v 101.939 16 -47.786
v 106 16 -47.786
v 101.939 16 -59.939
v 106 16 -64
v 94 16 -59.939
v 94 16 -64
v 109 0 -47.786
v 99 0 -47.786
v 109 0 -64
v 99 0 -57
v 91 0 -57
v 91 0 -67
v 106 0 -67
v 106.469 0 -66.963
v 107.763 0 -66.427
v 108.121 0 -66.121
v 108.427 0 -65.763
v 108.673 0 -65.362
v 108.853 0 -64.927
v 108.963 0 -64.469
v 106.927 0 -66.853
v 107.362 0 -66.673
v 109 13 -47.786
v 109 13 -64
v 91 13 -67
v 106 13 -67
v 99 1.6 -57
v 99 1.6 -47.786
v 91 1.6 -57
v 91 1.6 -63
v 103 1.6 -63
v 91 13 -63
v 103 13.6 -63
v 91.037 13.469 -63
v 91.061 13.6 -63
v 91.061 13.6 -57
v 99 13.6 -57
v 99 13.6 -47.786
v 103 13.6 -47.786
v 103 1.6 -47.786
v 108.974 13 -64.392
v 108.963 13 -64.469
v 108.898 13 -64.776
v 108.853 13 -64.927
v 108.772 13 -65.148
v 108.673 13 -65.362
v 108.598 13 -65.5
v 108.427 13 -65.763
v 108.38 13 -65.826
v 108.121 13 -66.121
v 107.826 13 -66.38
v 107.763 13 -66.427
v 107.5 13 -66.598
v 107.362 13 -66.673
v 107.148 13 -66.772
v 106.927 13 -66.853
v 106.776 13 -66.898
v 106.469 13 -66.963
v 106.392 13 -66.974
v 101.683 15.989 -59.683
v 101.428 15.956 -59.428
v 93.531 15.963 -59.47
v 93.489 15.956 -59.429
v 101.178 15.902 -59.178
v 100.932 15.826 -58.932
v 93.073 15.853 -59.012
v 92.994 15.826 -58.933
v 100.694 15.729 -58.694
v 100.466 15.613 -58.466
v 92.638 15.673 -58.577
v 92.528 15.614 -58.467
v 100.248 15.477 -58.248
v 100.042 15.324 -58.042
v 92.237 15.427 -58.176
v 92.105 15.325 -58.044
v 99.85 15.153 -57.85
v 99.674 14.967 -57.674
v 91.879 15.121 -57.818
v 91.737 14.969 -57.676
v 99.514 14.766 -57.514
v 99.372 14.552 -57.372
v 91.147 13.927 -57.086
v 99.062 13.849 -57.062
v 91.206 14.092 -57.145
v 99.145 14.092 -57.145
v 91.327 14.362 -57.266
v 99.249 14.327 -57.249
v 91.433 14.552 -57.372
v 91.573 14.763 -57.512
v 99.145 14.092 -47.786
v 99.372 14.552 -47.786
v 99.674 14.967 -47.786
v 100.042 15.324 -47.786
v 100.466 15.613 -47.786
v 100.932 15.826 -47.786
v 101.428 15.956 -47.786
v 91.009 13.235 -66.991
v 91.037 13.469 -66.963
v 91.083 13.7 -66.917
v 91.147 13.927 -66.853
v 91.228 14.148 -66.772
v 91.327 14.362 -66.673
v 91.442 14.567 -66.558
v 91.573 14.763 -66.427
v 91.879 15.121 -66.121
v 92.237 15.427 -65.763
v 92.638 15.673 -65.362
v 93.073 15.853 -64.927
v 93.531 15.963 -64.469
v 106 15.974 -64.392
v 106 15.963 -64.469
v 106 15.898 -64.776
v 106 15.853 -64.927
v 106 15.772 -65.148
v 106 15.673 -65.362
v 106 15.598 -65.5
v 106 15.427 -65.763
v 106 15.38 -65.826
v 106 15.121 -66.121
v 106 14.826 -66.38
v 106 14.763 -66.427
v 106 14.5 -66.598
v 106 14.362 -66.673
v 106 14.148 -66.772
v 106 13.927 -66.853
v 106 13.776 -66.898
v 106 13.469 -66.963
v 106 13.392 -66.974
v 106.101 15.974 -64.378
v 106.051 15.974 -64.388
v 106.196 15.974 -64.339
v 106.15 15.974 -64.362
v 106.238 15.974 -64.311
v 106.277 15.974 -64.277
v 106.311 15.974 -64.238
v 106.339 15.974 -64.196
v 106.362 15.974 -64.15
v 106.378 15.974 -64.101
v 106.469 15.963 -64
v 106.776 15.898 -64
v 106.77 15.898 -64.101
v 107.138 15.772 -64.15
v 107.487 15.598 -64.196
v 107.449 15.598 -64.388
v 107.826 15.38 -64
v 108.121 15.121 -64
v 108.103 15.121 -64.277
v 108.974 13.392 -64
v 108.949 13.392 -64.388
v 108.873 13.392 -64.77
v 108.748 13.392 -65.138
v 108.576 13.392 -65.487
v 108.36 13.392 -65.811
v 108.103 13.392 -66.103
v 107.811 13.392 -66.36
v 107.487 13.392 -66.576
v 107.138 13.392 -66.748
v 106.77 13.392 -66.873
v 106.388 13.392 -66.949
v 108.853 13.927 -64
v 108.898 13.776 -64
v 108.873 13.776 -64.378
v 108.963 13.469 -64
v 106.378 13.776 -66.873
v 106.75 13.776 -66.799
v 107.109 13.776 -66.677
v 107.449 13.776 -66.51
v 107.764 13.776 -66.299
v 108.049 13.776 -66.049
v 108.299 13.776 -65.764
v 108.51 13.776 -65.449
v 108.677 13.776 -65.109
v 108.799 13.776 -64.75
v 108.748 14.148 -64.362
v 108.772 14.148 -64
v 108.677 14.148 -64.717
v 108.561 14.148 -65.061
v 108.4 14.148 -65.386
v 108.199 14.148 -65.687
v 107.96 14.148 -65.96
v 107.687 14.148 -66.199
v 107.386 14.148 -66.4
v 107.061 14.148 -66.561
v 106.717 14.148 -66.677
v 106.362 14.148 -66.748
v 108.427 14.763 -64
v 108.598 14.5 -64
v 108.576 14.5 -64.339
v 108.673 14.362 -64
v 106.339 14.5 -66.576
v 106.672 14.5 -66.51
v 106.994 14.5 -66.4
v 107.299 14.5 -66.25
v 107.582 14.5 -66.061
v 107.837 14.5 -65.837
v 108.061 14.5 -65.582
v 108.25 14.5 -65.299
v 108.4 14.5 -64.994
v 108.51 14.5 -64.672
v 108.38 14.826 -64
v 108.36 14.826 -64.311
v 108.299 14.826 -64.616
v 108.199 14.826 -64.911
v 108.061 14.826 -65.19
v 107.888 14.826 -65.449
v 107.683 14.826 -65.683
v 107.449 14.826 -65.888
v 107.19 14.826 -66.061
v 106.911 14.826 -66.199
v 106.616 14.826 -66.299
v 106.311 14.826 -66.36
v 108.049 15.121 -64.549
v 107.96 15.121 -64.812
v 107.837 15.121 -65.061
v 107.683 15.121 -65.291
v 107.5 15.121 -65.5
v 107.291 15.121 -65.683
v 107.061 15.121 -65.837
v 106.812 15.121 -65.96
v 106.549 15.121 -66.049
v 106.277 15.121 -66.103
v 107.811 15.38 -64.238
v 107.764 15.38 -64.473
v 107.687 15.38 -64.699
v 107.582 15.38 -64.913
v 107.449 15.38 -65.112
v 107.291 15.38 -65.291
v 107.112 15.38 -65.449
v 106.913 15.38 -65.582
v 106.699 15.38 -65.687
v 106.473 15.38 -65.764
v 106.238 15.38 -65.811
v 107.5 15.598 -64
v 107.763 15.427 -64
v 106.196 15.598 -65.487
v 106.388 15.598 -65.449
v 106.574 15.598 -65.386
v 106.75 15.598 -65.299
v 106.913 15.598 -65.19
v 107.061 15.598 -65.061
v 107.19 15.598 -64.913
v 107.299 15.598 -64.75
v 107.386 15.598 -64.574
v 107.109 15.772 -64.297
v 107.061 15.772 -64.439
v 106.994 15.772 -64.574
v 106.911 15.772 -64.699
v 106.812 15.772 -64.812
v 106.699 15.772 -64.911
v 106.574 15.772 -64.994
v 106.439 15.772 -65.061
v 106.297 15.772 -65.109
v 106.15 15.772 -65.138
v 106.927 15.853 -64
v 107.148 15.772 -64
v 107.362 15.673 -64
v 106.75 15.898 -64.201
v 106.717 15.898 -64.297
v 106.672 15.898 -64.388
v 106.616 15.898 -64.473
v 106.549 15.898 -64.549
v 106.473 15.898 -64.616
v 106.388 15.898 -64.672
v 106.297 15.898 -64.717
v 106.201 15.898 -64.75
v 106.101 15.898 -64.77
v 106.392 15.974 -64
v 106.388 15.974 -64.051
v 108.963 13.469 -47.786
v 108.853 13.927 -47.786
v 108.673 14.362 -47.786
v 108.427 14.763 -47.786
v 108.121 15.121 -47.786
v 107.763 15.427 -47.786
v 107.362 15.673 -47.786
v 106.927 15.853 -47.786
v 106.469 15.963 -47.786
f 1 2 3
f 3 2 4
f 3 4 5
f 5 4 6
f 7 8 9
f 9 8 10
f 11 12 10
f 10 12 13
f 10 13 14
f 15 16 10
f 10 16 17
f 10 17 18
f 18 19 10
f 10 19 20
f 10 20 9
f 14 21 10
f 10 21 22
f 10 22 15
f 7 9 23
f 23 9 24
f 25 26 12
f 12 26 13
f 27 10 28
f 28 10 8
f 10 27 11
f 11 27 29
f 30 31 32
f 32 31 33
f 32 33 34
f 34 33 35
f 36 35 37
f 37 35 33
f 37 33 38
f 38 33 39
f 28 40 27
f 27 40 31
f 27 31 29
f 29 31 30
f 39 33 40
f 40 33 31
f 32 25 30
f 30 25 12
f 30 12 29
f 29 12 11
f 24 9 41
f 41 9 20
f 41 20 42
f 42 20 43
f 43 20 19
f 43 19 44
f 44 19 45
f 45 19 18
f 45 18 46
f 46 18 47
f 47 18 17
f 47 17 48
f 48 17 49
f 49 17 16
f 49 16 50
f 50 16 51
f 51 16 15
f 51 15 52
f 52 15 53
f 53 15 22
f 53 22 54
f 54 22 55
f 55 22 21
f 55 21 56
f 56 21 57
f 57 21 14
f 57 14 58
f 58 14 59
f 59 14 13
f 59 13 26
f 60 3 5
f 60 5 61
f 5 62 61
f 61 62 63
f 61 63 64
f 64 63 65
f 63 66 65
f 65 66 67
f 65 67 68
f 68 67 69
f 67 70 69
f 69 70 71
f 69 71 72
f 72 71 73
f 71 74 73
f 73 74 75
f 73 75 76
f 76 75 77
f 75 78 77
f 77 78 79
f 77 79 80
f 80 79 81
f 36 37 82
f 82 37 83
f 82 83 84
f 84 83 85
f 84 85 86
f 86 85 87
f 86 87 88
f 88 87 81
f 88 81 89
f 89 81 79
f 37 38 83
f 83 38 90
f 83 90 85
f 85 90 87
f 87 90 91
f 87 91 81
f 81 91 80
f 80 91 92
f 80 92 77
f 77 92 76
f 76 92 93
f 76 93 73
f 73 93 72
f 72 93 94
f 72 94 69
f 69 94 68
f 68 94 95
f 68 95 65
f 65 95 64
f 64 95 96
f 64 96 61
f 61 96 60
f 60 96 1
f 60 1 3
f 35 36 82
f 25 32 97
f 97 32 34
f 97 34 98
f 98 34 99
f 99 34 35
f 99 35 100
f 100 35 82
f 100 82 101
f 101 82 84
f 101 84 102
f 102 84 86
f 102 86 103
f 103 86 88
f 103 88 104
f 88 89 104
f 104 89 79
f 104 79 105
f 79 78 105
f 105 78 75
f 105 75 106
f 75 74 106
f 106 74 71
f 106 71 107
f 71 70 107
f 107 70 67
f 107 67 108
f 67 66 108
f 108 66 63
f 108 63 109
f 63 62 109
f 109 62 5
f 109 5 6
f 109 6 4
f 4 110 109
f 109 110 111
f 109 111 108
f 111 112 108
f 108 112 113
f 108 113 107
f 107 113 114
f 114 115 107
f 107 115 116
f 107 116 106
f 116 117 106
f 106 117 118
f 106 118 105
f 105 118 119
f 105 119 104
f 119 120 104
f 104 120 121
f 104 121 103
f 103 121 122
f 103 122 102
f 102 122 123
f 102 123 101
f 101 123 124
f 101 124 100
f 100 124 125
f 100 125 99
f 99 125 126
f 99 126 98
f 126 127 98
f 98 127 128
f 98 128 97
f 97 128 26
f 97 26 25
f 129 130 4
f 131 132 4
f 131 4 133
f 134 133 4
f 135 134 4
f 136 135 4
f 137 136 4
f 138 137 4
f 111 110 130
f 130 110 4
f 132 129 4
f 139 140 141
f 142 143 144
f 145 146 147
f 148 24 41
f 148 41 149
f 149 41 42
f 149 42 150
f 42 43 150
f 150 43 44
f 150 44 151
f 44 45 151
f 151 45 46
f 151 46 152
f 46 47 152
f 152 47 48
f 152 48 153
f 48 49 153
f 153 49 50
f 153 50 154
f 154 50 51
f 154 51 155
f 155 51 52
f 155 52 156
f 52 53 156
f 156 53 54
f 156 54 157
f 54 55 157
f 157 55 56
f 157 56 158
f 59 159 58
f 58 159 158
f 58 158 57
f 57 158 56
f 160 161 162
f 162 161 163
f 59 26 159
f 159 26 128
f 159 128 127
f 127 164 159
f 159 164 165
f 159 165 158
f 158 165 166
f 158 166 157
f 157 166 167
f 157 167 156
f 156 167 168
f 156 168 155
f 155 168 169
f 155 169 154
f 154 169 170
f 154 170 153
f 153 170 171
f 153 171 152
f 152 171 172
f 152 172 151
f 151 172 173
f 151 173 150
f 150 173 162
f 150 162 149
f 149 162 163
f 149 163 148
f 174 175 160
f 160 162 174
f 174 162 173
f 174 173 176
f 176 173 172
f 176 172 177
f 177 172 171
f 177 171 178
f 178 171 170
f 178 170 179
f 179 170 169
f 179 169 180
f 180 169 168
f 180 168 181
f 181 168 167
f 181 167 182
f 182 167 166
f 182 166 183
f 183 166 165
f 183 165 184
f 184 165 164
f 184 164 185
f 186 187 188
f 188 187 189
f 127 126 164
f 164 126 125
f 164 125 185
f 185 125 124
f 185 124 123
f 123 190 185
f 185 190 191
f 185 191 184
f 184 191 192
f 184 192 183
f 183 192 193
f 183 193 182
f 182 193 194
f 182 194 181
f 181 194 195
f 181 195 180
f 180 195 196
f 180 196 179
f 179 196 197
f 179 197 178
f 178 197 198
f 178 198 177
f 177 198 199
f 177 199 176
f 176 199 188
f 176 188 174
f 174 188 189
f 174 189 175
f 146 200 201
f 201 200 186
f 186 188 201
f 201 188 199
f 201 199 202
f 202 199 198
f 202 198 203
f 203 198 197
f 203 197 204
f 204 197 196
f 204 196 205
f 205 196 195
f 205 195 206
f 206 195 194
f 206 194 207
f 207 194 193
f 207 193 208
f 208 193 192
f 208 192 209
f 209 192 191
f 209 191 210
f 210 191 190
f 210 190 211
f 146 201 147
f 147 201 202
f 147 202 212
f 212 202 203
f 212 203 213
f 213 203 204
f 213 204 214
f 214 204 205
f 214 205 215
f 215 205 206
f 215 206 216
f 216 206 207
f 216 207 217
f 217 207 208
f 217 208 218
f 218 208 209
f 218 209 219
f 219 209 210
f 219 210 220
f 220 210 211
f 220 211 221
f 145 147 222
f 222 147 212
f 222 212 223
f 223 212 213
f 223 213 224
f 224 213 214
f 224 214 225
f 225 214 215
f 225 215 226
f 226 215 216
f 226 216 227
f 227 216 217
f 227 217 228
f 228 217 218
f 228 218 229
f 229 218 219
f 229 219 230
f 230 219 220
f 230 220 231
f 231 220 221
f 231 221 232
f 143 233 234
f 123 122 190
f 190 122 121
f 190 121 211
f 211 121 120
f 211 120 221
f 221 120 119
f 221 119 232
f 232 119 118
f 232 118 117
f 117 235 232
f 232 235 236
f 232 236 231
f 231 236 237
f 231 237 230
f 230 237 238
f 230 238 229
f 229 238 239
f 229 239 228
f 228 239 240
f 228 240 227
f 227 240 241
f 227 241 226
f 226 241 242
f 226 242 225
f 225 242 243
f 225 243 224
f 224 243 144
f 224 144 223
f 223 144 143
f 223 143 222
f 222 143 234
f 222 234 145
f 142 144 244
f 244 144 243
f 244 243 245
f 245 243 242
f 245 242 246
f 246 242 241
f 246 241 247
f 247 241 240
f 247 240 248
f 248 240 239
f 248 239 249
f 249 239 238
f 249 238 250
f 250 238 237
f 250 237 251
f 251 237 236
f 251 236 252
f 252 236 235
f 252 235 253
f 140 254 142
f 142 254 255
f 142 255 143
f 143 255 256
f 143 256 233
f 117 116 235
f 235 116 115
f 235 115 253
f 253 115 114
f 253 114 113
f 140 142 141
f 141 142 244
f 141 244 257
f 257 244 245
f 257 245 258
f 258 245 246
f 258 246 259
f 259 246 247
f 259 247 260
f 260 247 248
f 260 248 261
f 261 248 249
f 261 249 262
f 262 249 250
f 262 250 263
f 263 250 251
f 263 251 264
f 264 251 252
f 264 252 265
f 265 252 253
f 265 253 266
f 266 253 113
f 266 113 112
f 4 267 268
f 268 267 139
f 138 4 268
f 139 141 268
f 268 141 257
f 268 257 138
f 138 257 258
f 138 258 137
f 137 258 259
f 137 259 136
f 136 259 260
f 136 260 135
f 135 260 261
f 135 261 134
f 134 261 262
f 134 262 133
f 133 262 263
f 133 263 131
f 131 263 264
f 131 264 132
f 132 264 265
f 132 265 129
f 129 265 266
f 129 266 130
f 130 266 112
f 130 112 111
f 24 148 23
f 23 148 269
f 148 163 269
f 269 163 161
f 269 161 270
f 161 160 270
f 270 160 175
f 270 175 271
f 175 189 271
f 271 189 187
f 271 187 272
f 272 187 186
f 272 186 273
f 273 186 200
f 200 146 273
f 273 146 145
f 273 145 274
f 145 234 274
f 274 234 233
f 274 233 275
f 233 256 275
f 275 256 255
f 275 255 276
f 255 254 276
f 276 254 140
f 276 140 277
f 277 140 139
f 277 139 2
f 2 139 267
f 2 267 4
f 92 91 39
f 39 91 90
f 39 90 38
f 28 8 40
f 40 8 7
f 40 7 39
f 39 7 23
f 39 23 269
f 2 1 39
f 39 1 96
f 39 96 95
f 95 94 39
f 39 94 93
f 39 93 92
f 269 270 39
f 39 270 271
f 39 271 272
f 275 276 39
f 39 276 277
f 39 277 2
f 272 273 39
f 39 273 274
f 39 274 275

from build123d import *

# Parameters (mm, degrees)
SKETCH_221_W        = 218
SKETCH_221_H        = 134
SKETCH_221_W_2      = 198
SKETCH_221_H_2      = 114
EXTRUDE_2_DEPTH     = 16
SKETCH_2_W          = 126
SKETCH_2_H          = 12
CUT_EXTRUDE_1_DEPTH = 212
SKETCH_3_W          = 182
SKETCH_3_H          = 14.4
CUT_EXTRUDE_2_DEPTH = 134
SKETCH_4_R          = 1
CUT_EXTRUDE_3_DEPTH = 1.6
FILLET_1_R          = 3
FILLET_2_R          = 3
FILLET_3_R          = 3
SKETCH_6_W          = 206.897999361
SKETCH_6_H          = 19.177389722
CUT_EXTRUDE_5_DEPTH = 200
SKETCH_7_W          = 123.024935324
SKETCH_7_H          = 17.566945153
CUT_EXTRUDE_6_DEPTH = 300


with BuildPart() as part:
    # Sketch 221 → Бобышка-Вытянуть2 (new body)
    with BuildSketch(Plane(origin=(0, 0, 0), x_dir=(1, 0, 0), z_dir=(0, 1, 0))):
        Rectangle(SKETCH_221_W, SKETCH_221_H)
        Rectangle(SKETCH_221_W_2, SKETCH_221_H_2, mode=Mode.SUBTRACT)
    extrude(amount=EXTRUDE_2_DEPTH)

    # Эскиз2 → Вырез-Вытянуть1 (cut)
    with BuildSketch(Plane.ZY.offset(109)):
        with Locations((0, 7.6)):
            Rectangle(SKETCH_2_W, SKETCH_2_H)
    extrude(amount=-CUT_EXTRUDE_1_DEPTH, mode=Mode.SUBTRACT)

    # Эскиз3 → Вырез-Вытянуть2 (cut)
    with BuildSketch(Plane.XY.offset(67)):
        with Locations((0, 8.8)):
            Rectangle(SKETCH_3_W, SKETCH_3_H)
    extrude(amount=-CUT_EXTRUDE_2_DEPTH, mode=Mode.SUBTRACT)

    # Эскиз4 → Вырез-Вытянуть3 (cut)
    with BuildSketch(Plane(origin=(0, 1.6, 0), x_dir=(1, 0, 0), z_dir=(0, 1, 0))):
        with Locations(Location((-74.698916604, 62, 0), (0, 0, 270))):
            Circle(SKETCH_4_R)
        with Locations(Location((-74.698916604, -62, 0), (0, 0, 270))):
            Circle(SKETCH_4_R)
        with Locations(Location((74.698916604, -62, 0), (0, 0, 90))):
            Circle(SKETCH_4_R)
        with Locations(Location((74.698916604, 62, 0), (0, 0, 90))):
            Circle(SKETCH_4_R)
    extrude(amount=-CUT_EXTRUDE_3_DEPTH, mode=Mode.SUBTRACT)

    # Скругление1
    fillet_1_edges = [part.edges().sort_by_distance(p)[0] for p in [
        (109, 8, 67),
        (-109, 8, 67),
        (-109, 8, -67),
        (109, 8, -67),
    ]]
    fillet(fillet_1_edges, radius=FILLET_1_R)

    # Скругление2
    # the kernel refuses this fillet: 3 mm, written as the material it takes off along each edge
    with BuildSketch(Plane(origin=(-91, 16, -49.5), x_dir=(-1, 0, 0), z_dir=(0, 0, -1)), Plane(origin=(-91, 16, 74.5), x_dir=(-1, 0, 0), z_dir=(0, 0, -1))) as fillet_2_piece_1:
        with BuildLine():
            CenterArc((FILLET_2_R, -FILLET_2_R), FILLET_2_R, 90, 90)
            Line((0, -FILLET_2_R), (0, 0))
            Line((0, 0), (FILLET_2_R, 0))
        make_face()
    extrude(amount=25, mode=Mode.SUBTRACT)
    with BuildSketch(Plane(origin=(-83.651530772, 16, -57), x_dir=(0, 0, -1), z_dir=(-1, 0, 0)), Plane(origin=(-99, 16, 57), x_dir=(0, 0, 1), z_dir=(1, 0, 0))) as fillet_2_piece_2:
        with BuildLine():
            CenterArc((2.939387691, 3), FILLET_2_R, 191.536959033, 78.463040967)
            Line((0, 2.4), (0, 0))
            Line((0, 0), (2.939387691, 0))
        make_face()
    extrude(amount=15.348469228, mode=Mode.SUBTRACT)
    with BuildSketch(Plane(origin=(-99, 16, -57), x_dir=(-1, 0, 0), z_dir=(0, 0, 1))) as fillet_2_piece_3:
        with BuildLine():
            CenterArc((2.939387691, 3), FILLET_2_R, 191.536959033, 78.463040967)
            Line((0, 2.4), (0, 0))
            Line((0, 0), (2.939387691, 0))
        make_face()
    extrude(amount=114, mode=Mode.SUBTRACT)
    with BuildSketch(Plane(origin=(-106, 16, 67), x_dir=(0, -1, 0), z_dir=(1, 0, 0))) as fillet_2_piece_4:
        with BuildLine():
            CenterArc((FILLET_2_R, FILLET_2_R), FILLET_2_R, 180, 90)
            Line((0, FILLET_2_R), (0, 0))
            Line((0, 0), (FILLET_2_R, 0))
        make_face()
    extrude(amount=22.5, mode=Mode.SUBTRACT)
    with BuildSketch(Plane(origin=(-106, 16, 64), x_dir=(0, 0, 1), z_dir=(1, 0, 0))) as fillet_2_piece_5:
        with BuildLine():
            CenterArc((3 - FILLET_2_R, FILLET_2_R), FILLET_2_R, 270, 90)
            Line((3 - FILLET_2_R, 0), (3, 0))
            Line((3, 0), (3, FILLET_2_R))
        make_face()
    revolve(axis=Axis((-106, 16, 64), (0, -1, 0)), revolution_arc=90, mode=Mode.SUBTRACT)
    with BuildSketch(Plane(origin=(-109, 16, -64), x_dir=(1, 0, 0), z_dir=(0, 0, 1))) as fillet_2_piece_6:
        with BuildLine():
            CenterArc((FILLET_2_R, -FILLET_2_R), FILLET_2_R, 90, 90)
            Line((0, -FILLET_2_R), (0, 0))
            Line((0, 0), (FILLET_2_R, 0))
        make_face()
    extrude(amount=128, mode=Mode.SUBTRACT)
    with BuildSketch(Plane(origin=(-106, 16, -64), x_dir=(-1, 0, 0), z_dir=(0, 0, 1))) as fillet_2_piece_7:
        with BuildLine():
            CenterArc((3 - FILLET_2_R, FILLET_2_R), FILLET_2_R, 270, 90)
            Line((3, FILLET_2_R), (3, 0))
            Line((3, 0), (3 - FILLET_2_R, 0))
        make_face()
    revolve(axis=Axis((-106, 16, -64), (0, -1, 0)), revolution_arc=90, mode=Mode.SUBTRACT)
    with BuildSketch(Plane(origin=(-83.5, 16, -67), x_dir=(0, 0, 1), z_dir=(-1, 0, 0))) as fillet_2_piece_8:
        with BuildLine():
            CenterArc((FILLET_2_R, -FILLET_2_R), FILLET_2_R, 90, 90)
            Line((0, -FILLET_2_R), (0, 0))
            Line((0, 0), (FILLET_2_R, 0))
        make_face()
    extrude(amount=22.5, mode=Mode.SUBTRACT)
    with BuildSketch(Plane(origin=(-91, 16, -57), x_dir=(0, 0, -1), z_dir=(-1, 0, 0))) as fillet_2_piece_9a_section:
        with BuildLine():
            CenterArc((2.939387691, 3), FILLET_2_R, 191.536959033, 78.463040967)
            Line((0, 2.4), (0, 0))
            Line((0, 0), (2.939387691, 0))
        make_face()
    fillet_2_piece_9a = extrude(amount=15.348469228, mode=Mode.PRIVATE)
    fillet_2_piece_9a = split(fillet_2_piece_9a, bisect_by=Plane(origin=(-99, 16, -57), z_dir=(-1, 0, 0)), keep=Keep.TOP, mode=Mode.PRIVATE)
    with BuildSketch(Plane(origin=(-99, 16, -64.348469228), x_dir=(-1, 0, 0), z_dir=(0, 0, 1))) as fillet_2_piece_9b_section:
        with BuildLine():
            CenterArc((2.939387691, 3), FILLET_2_R, 191.536959033, 78.463040967)
            Line((0, 2.4), (0, 0))
            Line((0, 0), (2.939387691, 0))
        make_face()
    fillet_2_piece_9b = extrude(amount=121.348469228, mode=Mode.PRIVATE)
    fillet_2_piece_9b = split(fillet_2_piece_9b, bisect_by=Plane(origin=(-99, 16, -57), z_dir=(0, 0, -1)), keep=Keep.TOP, mode=Mode.PRIVATE)
    fillet_2_piece_9b = split(fillet_2_piece_9b, bisect_by=Plane(origin=(-99, 16, -63), z_dir=(0, 0, 1)), keep=Keep.TOP, mode=Mode.PRIVATE)
    fillet_2_piece_9 = fillet_2_piece_9a & fillet_2_piece_9b
    add(fillet_2_piece_9, mode=Mode.SUBTRACT)
    with BuildSketch(Plane(origin=(-106.348469228, 16, 57), x_dir=(0, 0, 1), z_dir=(1, 0, 0))) as fillet_2_piece_10a_section:
        with BuildLine():
            CenterArc((2.939387691, 3), FILLET_2_R, 191.536959033, 78.463040967)
            Line((0, 2.4), (0, 0))
            Line((0, 0), (2.939387691, 0))
        make_face()
    fillet_2_piece_10a = extrude(amount=15.348469228, mode=Mode.PRIVATE)
    fillet_2_piece_10a = split(fillet_2_piece_10a, bisect_by=Plane(origin=(-99, 16, 57), z_dir=(-1, 0, 0)), keep=Keep.TOP, mode=Mode.PRIVATE)
    with BuildSketch(Plane(origin=(-99, 16, -57), x_dir=(-1, 0, 0), z_dir=(0, 0, 1))) as fillet_2_piece_10b_section:
        with BuildLine():
            CenterArc((2.939387691, 3), FILLET_2_R, 191.536959033, 78.463040967)
            Line((0, 2.4), (0, 0))
            Line((0, 0), (2.939387691, 0))
        make_face()
    fillet_2_piece_10b = extrude(amount=121.348469228, mode=Mode.PRIVATE)
    fillet_2_piece_10b = split(fillet_2_piece_10b, bisect_by=Plane(origin=(-99, 16, 57), z_dir=(0, 0, 1)), keep=Keep.TOP, mode=Mode.PRIVATE)
    fillet_2_piece_10b = split(fillet_2_piece_10b, bisect_by=Plane(origin=(-99, 16, 63), z_dir=(0, 0, -1)), keep=Keep.TOP, mode=Mode.PRIVATE)
    fillet_2_piece_10 = fillet_2_piece_10a & fillet_2_piece_10b
    add(fillet_2_piece_10, mode=Mode.SUBTRACT)

    # Скругление3
    # the kernel refuses this fillet: 3 mm, written as the material it takes off along each edge
    with BuildSketch(Plane(origin=(106, 16, 64), x_dir=(0, 0, 1), z_dir=(-1, 0, 0))) as fillet_3_piece_1:
        with BuildLine():
            CenterArc((3 - FILLET_3_R, -FILLET_3_R), FILLET_3_R, 0, 90)
            Line((3, -FILLET_3_R), (3, 0))
            Line((3, 0), (3 - FILLET_3_R, 0))
        make_face()
    revolve(axis=Axis((106, 16, 64), (0, 1, 0)), revolution_arc=90, mode=Mode.SUBTRACT)
    with BuildSketch(Plane(origin=(83.5, 16, 67), x_dir=(0, -1, 0), z_dir=(1, 0, 0)), Plane(origin=(106, 16, -67), x_dir=(0, -1, 0), z_dir=(-1, 0, 0))) as fillet_3_piece_2:
        with BuildLine():
            CenterArc((FILLET_3_R, FILLET_3_R), FILLET_3_R, 180, 90)
            Line((0, FILLET_3_R), (0, 0))
            Line((0, 0), (FILLET_3_R, 0))
        make_face()
    extrude(amount=22.5, mode=Mode.SUBTRACT)
    with BuildSketch(Plane(origin=(91, 16, 74.5), x_dir=(0, -1, 0), z_dir=(0, 0, -1)), Plane(origin=(91, 16, -49.5), x_dir=(0, -1, 0), z_dir=(0, 0, -1))) as fillet_3_piece_3:
        with BuildLine():
            CenterArc((FILLET_3_R, -FILLET_3_R), FILLET_3_R, 90, 90)
            Line((0, -FILLET_3_R), (0, 0))
            Line((0, 0), (FILLET_3_R, 0))
        make_face()
    extrude(amount=25, mode=Mode.SUBTRACT)
    with BuildSketch(Plane(origin=(83.651530772, 16, 57), x_dir=(0, -1.0, 1.5720758028687117e-12), z_dir=(1, 0, 0)), Plane(origin=(99, 16, -57), x_dir=(0, -1.0, -1.5750363976010446e-12), z_dir=(-1, 0, 0))) as fillet_3_piece_4:
        with BuildLine():
            CenterArc((3, -2.939387691), FILLET_3_R, 101.536959033, 78.463040967)
            Line((0, -2.939387691), (0, 0))
            Line((0, 0), (2.4, 0))
        make_face()
    extrude(amount=15.348469228, mode=Mode.SUBTRACT)
    with BuildSketch(Plane(origin=(99, 16, 57), x_dir=(1.56911520813638e-12, -1.0, 0), z_dir=(0, 0, -1))) as fillet_3_piece_5:
        with BuildLine():
            CenterArc((3, -2.939387691), FILLET_3_R, 101.536959033, 78.463040967)
            Line((0, -2.939387691), (0, 0))
            Line((0, 0), (2.4, 0))
        make_face()
    extrude(amount=114, mode=Mode.SUBTRACT)
    with BuildSketch(Plane(origin=(106, 16, -64), x_dir=(1, 0, 0), z_dir=(0, 0, 1))) as fillet_3_piece_6:
        with BuildLine():
            CenterArc((3 - FILLET_3_R, -FILLET_3_R), FILLET_3_R, 0, 90)
            Line((3 - FILLET_3_R, 0), (3, 0))
            Line((3, 0), (3, -FILLET_3_R))
        make_face()
    revolve(axis=Axis((106, 16, -64), (0, 1, 0)), revolution_arc=90, mode=Mode.SUBTRACT)
    with BuildSketch(Plane(origin=(109, 16, 64), x_dir=(0, -1, 0), z_dir=(0, 0, -1))) as fillet_3_piece_7:
        with BuildLine():
            CenterArc((FILLET_3_R, FILLET_3_R), FILLET_3_R, 180, 90)
            Line((0, FILLET_3_R), (0, 0))
            Line((0, 0), (FILLET_3_R, 0))
        make_face()
    extrude(amount=128, mode=Mode.SUBTRACT)
    with BuildSketch(Plane(origin=(91, 16, 57), x_dir=(0, -1.0, 1.5720758028687117e-12), z_dir=(1, 0, 0))) as fillet_3_piece_8a_section:
        with BuildLine():
            CenterArc((3, -2.939387691), FILLET_3_R, 101.536959033, 78.463040967)
            Line((0, -2.939387691), (0, 0))
            Line((0, 0), (2.4, 0))
        make_face()
    fillet_3_piece_8a = extrude(amount=15.348469228, mode=Mode.PRIVATE)
    fillet_3_piece_8a = split(fillet_3_piece_8a, bisect_by=Plane(origin=(103, 16, 57), z_dir=(-1, 0, 0)), keep=Keep.TOP, mode=Mode.PRIVATE)
    fillet_3_piece_8a = split(fillet_3_piece_8a, bisect_by=Plane(origin=(99, 16, 57), z_dir=(1, 0, 0)), keep=Keep.TOP, mode=Mode.PRIVATE)
    with BuildSketch(Plane(origin=(99, 16, 64.348469228), x_dir=(1.56911520813638e-12, -1.0, 0), z_dir=(0, 0, -1))) as fillet_3_piece_8b_section:
        with BuildLine():
            CenterArc((3, -2.939387691), FILLET_3_R, 101.536959033, 78.463040967)
            Line((0, -2.939387691), (0, 0))
            Line((0, 0), (2.4, 0))
        make_face()
    fillet_3_piece_8b = extrude(amount=121.348469228, mode=Mode.PRIVATE)
    fillet_3_piece_8b = split(fillet_3_piece_8b, bisect_by=Plane(origin=(99, 16, 63), z_dir=(0, 0, -1)), keep=Keep.TOP, mode=Mode.PRIVATE)
    fillet_3_piece_8b = split(fillet_3_piece_8b, bisect_by=Plane(origin=(99, 16, 57), z_dir=(0, 0, 1)), keep=Keep.TOP, mode=Mode.PRIVATE)
    fillet_3_piece_8 = fillet_3_piece_8a & fillet_3_piece_8b
    add(fillet_3_piece_8, mode=Mode.SUBTRACT)
    with BuildSketch(Plane(origin=(99, 16, 57), x_dir=(1.56911520813638e-12, -1.0, 0), z_dir=(0, 0, -1))) as fillet_3_piece_9a_section:
        with BuildLine():
            CenterArc((3, -2.939387691), FILLET_3_R, 101.536959033, 78.463040967)
            Line((0, -2.939387691), (0, 0))
            Line((0, 0), (2.4, 0))
        make_face()
    fillet_3_piece_9a = extrude(amount=121.348469228, mode=Mode.PRIVATE)
    fillet_3_piece_9a = split(fillet_3_piece_9a, bisect_by=Plane(origin=(99, 16, -63), z_dir=(0, 0, 1)), keep=Keep.TOP, mode=Mode.PRIVATE)
    fillet_3_piece_9a = split(fillet_3_piece_9a, bisect_by=Plane(origin=(99, 16, -57), z_dir=(0, 0, -1)), keep=Keep.TOP, mode=Mode.PRIVATE)
    with BuildSketch(Plane(origin=(106.348469228, 16, -57), x_dir=(0, -1.0, -1.5750363976010446e-12), z_dir=(-1, 0, 0))) as fillet_3_piece_9b_section:
        with BuildLine():
            CenterArc((3, -2.939387691), FILLET_3_R, 101.536959033, 78.463040967)
            Line((0, -2.939387691), (0, 0))
            Line((0, 0), (2.4, 0))
        make_face()
    fillet_3_piece_9b = extrude(amount=15.348469228, mode=Mode.PRIVATE)
    fillet_3_piece_9b = split(fillet_3_piece_9b, bisect_by=Plane(origin=(103, 16, -57), z_dir=(-1, 0, 0)), keep=Keep.TOP, mode=Mode.PRIVATE)
    fillet_3_piece_9b = split(fillet_3_piece_9b, bisect_by=Plane(origin=(99, 16, -57), z_dir=(1, 0, 0)), keep=Keep.TOP, mode=Mode.PRIVATE)
    fillet_3_piece_9 = fillet_3_piece_9a & fillet_3_piece_9b
    add(fillet_3_piece_9, mode=Mode.SUBTRACT)

    # Эскиз6 → Вырез-Вытянуть5 (cut)
    with BuildSketch(Plane(origin=(0, 0, -67), x_dir=(-1, 0, 0), z_dir=(0, 0, -1))):
        with Locations((12.448999681, 9.588694861)):
            Rectangle(SKETCH_6_W, SKETCH_6_H)
    extrude(amount=-CUT_EXTRUDE_5_DEPTH, mode=Mode.SUBTRACT)

    # Эскиз7 → Вырез-Вытянуть6 (cut)
    with BuildSketch(Plane(origin=(109, 0, 0), x_dir=(0, 0, -1), z_dir=(1, 0, 0))):
        with Locations((-13.726045872, 8.783472577)):
            Rectangle(SKETCH_7_W, SKETCH_7_H)
    extrude(amount=-CUT_EXTRUDE_6_DEPTH, mode=Mode.SUBTRACT)


solid = part.part
